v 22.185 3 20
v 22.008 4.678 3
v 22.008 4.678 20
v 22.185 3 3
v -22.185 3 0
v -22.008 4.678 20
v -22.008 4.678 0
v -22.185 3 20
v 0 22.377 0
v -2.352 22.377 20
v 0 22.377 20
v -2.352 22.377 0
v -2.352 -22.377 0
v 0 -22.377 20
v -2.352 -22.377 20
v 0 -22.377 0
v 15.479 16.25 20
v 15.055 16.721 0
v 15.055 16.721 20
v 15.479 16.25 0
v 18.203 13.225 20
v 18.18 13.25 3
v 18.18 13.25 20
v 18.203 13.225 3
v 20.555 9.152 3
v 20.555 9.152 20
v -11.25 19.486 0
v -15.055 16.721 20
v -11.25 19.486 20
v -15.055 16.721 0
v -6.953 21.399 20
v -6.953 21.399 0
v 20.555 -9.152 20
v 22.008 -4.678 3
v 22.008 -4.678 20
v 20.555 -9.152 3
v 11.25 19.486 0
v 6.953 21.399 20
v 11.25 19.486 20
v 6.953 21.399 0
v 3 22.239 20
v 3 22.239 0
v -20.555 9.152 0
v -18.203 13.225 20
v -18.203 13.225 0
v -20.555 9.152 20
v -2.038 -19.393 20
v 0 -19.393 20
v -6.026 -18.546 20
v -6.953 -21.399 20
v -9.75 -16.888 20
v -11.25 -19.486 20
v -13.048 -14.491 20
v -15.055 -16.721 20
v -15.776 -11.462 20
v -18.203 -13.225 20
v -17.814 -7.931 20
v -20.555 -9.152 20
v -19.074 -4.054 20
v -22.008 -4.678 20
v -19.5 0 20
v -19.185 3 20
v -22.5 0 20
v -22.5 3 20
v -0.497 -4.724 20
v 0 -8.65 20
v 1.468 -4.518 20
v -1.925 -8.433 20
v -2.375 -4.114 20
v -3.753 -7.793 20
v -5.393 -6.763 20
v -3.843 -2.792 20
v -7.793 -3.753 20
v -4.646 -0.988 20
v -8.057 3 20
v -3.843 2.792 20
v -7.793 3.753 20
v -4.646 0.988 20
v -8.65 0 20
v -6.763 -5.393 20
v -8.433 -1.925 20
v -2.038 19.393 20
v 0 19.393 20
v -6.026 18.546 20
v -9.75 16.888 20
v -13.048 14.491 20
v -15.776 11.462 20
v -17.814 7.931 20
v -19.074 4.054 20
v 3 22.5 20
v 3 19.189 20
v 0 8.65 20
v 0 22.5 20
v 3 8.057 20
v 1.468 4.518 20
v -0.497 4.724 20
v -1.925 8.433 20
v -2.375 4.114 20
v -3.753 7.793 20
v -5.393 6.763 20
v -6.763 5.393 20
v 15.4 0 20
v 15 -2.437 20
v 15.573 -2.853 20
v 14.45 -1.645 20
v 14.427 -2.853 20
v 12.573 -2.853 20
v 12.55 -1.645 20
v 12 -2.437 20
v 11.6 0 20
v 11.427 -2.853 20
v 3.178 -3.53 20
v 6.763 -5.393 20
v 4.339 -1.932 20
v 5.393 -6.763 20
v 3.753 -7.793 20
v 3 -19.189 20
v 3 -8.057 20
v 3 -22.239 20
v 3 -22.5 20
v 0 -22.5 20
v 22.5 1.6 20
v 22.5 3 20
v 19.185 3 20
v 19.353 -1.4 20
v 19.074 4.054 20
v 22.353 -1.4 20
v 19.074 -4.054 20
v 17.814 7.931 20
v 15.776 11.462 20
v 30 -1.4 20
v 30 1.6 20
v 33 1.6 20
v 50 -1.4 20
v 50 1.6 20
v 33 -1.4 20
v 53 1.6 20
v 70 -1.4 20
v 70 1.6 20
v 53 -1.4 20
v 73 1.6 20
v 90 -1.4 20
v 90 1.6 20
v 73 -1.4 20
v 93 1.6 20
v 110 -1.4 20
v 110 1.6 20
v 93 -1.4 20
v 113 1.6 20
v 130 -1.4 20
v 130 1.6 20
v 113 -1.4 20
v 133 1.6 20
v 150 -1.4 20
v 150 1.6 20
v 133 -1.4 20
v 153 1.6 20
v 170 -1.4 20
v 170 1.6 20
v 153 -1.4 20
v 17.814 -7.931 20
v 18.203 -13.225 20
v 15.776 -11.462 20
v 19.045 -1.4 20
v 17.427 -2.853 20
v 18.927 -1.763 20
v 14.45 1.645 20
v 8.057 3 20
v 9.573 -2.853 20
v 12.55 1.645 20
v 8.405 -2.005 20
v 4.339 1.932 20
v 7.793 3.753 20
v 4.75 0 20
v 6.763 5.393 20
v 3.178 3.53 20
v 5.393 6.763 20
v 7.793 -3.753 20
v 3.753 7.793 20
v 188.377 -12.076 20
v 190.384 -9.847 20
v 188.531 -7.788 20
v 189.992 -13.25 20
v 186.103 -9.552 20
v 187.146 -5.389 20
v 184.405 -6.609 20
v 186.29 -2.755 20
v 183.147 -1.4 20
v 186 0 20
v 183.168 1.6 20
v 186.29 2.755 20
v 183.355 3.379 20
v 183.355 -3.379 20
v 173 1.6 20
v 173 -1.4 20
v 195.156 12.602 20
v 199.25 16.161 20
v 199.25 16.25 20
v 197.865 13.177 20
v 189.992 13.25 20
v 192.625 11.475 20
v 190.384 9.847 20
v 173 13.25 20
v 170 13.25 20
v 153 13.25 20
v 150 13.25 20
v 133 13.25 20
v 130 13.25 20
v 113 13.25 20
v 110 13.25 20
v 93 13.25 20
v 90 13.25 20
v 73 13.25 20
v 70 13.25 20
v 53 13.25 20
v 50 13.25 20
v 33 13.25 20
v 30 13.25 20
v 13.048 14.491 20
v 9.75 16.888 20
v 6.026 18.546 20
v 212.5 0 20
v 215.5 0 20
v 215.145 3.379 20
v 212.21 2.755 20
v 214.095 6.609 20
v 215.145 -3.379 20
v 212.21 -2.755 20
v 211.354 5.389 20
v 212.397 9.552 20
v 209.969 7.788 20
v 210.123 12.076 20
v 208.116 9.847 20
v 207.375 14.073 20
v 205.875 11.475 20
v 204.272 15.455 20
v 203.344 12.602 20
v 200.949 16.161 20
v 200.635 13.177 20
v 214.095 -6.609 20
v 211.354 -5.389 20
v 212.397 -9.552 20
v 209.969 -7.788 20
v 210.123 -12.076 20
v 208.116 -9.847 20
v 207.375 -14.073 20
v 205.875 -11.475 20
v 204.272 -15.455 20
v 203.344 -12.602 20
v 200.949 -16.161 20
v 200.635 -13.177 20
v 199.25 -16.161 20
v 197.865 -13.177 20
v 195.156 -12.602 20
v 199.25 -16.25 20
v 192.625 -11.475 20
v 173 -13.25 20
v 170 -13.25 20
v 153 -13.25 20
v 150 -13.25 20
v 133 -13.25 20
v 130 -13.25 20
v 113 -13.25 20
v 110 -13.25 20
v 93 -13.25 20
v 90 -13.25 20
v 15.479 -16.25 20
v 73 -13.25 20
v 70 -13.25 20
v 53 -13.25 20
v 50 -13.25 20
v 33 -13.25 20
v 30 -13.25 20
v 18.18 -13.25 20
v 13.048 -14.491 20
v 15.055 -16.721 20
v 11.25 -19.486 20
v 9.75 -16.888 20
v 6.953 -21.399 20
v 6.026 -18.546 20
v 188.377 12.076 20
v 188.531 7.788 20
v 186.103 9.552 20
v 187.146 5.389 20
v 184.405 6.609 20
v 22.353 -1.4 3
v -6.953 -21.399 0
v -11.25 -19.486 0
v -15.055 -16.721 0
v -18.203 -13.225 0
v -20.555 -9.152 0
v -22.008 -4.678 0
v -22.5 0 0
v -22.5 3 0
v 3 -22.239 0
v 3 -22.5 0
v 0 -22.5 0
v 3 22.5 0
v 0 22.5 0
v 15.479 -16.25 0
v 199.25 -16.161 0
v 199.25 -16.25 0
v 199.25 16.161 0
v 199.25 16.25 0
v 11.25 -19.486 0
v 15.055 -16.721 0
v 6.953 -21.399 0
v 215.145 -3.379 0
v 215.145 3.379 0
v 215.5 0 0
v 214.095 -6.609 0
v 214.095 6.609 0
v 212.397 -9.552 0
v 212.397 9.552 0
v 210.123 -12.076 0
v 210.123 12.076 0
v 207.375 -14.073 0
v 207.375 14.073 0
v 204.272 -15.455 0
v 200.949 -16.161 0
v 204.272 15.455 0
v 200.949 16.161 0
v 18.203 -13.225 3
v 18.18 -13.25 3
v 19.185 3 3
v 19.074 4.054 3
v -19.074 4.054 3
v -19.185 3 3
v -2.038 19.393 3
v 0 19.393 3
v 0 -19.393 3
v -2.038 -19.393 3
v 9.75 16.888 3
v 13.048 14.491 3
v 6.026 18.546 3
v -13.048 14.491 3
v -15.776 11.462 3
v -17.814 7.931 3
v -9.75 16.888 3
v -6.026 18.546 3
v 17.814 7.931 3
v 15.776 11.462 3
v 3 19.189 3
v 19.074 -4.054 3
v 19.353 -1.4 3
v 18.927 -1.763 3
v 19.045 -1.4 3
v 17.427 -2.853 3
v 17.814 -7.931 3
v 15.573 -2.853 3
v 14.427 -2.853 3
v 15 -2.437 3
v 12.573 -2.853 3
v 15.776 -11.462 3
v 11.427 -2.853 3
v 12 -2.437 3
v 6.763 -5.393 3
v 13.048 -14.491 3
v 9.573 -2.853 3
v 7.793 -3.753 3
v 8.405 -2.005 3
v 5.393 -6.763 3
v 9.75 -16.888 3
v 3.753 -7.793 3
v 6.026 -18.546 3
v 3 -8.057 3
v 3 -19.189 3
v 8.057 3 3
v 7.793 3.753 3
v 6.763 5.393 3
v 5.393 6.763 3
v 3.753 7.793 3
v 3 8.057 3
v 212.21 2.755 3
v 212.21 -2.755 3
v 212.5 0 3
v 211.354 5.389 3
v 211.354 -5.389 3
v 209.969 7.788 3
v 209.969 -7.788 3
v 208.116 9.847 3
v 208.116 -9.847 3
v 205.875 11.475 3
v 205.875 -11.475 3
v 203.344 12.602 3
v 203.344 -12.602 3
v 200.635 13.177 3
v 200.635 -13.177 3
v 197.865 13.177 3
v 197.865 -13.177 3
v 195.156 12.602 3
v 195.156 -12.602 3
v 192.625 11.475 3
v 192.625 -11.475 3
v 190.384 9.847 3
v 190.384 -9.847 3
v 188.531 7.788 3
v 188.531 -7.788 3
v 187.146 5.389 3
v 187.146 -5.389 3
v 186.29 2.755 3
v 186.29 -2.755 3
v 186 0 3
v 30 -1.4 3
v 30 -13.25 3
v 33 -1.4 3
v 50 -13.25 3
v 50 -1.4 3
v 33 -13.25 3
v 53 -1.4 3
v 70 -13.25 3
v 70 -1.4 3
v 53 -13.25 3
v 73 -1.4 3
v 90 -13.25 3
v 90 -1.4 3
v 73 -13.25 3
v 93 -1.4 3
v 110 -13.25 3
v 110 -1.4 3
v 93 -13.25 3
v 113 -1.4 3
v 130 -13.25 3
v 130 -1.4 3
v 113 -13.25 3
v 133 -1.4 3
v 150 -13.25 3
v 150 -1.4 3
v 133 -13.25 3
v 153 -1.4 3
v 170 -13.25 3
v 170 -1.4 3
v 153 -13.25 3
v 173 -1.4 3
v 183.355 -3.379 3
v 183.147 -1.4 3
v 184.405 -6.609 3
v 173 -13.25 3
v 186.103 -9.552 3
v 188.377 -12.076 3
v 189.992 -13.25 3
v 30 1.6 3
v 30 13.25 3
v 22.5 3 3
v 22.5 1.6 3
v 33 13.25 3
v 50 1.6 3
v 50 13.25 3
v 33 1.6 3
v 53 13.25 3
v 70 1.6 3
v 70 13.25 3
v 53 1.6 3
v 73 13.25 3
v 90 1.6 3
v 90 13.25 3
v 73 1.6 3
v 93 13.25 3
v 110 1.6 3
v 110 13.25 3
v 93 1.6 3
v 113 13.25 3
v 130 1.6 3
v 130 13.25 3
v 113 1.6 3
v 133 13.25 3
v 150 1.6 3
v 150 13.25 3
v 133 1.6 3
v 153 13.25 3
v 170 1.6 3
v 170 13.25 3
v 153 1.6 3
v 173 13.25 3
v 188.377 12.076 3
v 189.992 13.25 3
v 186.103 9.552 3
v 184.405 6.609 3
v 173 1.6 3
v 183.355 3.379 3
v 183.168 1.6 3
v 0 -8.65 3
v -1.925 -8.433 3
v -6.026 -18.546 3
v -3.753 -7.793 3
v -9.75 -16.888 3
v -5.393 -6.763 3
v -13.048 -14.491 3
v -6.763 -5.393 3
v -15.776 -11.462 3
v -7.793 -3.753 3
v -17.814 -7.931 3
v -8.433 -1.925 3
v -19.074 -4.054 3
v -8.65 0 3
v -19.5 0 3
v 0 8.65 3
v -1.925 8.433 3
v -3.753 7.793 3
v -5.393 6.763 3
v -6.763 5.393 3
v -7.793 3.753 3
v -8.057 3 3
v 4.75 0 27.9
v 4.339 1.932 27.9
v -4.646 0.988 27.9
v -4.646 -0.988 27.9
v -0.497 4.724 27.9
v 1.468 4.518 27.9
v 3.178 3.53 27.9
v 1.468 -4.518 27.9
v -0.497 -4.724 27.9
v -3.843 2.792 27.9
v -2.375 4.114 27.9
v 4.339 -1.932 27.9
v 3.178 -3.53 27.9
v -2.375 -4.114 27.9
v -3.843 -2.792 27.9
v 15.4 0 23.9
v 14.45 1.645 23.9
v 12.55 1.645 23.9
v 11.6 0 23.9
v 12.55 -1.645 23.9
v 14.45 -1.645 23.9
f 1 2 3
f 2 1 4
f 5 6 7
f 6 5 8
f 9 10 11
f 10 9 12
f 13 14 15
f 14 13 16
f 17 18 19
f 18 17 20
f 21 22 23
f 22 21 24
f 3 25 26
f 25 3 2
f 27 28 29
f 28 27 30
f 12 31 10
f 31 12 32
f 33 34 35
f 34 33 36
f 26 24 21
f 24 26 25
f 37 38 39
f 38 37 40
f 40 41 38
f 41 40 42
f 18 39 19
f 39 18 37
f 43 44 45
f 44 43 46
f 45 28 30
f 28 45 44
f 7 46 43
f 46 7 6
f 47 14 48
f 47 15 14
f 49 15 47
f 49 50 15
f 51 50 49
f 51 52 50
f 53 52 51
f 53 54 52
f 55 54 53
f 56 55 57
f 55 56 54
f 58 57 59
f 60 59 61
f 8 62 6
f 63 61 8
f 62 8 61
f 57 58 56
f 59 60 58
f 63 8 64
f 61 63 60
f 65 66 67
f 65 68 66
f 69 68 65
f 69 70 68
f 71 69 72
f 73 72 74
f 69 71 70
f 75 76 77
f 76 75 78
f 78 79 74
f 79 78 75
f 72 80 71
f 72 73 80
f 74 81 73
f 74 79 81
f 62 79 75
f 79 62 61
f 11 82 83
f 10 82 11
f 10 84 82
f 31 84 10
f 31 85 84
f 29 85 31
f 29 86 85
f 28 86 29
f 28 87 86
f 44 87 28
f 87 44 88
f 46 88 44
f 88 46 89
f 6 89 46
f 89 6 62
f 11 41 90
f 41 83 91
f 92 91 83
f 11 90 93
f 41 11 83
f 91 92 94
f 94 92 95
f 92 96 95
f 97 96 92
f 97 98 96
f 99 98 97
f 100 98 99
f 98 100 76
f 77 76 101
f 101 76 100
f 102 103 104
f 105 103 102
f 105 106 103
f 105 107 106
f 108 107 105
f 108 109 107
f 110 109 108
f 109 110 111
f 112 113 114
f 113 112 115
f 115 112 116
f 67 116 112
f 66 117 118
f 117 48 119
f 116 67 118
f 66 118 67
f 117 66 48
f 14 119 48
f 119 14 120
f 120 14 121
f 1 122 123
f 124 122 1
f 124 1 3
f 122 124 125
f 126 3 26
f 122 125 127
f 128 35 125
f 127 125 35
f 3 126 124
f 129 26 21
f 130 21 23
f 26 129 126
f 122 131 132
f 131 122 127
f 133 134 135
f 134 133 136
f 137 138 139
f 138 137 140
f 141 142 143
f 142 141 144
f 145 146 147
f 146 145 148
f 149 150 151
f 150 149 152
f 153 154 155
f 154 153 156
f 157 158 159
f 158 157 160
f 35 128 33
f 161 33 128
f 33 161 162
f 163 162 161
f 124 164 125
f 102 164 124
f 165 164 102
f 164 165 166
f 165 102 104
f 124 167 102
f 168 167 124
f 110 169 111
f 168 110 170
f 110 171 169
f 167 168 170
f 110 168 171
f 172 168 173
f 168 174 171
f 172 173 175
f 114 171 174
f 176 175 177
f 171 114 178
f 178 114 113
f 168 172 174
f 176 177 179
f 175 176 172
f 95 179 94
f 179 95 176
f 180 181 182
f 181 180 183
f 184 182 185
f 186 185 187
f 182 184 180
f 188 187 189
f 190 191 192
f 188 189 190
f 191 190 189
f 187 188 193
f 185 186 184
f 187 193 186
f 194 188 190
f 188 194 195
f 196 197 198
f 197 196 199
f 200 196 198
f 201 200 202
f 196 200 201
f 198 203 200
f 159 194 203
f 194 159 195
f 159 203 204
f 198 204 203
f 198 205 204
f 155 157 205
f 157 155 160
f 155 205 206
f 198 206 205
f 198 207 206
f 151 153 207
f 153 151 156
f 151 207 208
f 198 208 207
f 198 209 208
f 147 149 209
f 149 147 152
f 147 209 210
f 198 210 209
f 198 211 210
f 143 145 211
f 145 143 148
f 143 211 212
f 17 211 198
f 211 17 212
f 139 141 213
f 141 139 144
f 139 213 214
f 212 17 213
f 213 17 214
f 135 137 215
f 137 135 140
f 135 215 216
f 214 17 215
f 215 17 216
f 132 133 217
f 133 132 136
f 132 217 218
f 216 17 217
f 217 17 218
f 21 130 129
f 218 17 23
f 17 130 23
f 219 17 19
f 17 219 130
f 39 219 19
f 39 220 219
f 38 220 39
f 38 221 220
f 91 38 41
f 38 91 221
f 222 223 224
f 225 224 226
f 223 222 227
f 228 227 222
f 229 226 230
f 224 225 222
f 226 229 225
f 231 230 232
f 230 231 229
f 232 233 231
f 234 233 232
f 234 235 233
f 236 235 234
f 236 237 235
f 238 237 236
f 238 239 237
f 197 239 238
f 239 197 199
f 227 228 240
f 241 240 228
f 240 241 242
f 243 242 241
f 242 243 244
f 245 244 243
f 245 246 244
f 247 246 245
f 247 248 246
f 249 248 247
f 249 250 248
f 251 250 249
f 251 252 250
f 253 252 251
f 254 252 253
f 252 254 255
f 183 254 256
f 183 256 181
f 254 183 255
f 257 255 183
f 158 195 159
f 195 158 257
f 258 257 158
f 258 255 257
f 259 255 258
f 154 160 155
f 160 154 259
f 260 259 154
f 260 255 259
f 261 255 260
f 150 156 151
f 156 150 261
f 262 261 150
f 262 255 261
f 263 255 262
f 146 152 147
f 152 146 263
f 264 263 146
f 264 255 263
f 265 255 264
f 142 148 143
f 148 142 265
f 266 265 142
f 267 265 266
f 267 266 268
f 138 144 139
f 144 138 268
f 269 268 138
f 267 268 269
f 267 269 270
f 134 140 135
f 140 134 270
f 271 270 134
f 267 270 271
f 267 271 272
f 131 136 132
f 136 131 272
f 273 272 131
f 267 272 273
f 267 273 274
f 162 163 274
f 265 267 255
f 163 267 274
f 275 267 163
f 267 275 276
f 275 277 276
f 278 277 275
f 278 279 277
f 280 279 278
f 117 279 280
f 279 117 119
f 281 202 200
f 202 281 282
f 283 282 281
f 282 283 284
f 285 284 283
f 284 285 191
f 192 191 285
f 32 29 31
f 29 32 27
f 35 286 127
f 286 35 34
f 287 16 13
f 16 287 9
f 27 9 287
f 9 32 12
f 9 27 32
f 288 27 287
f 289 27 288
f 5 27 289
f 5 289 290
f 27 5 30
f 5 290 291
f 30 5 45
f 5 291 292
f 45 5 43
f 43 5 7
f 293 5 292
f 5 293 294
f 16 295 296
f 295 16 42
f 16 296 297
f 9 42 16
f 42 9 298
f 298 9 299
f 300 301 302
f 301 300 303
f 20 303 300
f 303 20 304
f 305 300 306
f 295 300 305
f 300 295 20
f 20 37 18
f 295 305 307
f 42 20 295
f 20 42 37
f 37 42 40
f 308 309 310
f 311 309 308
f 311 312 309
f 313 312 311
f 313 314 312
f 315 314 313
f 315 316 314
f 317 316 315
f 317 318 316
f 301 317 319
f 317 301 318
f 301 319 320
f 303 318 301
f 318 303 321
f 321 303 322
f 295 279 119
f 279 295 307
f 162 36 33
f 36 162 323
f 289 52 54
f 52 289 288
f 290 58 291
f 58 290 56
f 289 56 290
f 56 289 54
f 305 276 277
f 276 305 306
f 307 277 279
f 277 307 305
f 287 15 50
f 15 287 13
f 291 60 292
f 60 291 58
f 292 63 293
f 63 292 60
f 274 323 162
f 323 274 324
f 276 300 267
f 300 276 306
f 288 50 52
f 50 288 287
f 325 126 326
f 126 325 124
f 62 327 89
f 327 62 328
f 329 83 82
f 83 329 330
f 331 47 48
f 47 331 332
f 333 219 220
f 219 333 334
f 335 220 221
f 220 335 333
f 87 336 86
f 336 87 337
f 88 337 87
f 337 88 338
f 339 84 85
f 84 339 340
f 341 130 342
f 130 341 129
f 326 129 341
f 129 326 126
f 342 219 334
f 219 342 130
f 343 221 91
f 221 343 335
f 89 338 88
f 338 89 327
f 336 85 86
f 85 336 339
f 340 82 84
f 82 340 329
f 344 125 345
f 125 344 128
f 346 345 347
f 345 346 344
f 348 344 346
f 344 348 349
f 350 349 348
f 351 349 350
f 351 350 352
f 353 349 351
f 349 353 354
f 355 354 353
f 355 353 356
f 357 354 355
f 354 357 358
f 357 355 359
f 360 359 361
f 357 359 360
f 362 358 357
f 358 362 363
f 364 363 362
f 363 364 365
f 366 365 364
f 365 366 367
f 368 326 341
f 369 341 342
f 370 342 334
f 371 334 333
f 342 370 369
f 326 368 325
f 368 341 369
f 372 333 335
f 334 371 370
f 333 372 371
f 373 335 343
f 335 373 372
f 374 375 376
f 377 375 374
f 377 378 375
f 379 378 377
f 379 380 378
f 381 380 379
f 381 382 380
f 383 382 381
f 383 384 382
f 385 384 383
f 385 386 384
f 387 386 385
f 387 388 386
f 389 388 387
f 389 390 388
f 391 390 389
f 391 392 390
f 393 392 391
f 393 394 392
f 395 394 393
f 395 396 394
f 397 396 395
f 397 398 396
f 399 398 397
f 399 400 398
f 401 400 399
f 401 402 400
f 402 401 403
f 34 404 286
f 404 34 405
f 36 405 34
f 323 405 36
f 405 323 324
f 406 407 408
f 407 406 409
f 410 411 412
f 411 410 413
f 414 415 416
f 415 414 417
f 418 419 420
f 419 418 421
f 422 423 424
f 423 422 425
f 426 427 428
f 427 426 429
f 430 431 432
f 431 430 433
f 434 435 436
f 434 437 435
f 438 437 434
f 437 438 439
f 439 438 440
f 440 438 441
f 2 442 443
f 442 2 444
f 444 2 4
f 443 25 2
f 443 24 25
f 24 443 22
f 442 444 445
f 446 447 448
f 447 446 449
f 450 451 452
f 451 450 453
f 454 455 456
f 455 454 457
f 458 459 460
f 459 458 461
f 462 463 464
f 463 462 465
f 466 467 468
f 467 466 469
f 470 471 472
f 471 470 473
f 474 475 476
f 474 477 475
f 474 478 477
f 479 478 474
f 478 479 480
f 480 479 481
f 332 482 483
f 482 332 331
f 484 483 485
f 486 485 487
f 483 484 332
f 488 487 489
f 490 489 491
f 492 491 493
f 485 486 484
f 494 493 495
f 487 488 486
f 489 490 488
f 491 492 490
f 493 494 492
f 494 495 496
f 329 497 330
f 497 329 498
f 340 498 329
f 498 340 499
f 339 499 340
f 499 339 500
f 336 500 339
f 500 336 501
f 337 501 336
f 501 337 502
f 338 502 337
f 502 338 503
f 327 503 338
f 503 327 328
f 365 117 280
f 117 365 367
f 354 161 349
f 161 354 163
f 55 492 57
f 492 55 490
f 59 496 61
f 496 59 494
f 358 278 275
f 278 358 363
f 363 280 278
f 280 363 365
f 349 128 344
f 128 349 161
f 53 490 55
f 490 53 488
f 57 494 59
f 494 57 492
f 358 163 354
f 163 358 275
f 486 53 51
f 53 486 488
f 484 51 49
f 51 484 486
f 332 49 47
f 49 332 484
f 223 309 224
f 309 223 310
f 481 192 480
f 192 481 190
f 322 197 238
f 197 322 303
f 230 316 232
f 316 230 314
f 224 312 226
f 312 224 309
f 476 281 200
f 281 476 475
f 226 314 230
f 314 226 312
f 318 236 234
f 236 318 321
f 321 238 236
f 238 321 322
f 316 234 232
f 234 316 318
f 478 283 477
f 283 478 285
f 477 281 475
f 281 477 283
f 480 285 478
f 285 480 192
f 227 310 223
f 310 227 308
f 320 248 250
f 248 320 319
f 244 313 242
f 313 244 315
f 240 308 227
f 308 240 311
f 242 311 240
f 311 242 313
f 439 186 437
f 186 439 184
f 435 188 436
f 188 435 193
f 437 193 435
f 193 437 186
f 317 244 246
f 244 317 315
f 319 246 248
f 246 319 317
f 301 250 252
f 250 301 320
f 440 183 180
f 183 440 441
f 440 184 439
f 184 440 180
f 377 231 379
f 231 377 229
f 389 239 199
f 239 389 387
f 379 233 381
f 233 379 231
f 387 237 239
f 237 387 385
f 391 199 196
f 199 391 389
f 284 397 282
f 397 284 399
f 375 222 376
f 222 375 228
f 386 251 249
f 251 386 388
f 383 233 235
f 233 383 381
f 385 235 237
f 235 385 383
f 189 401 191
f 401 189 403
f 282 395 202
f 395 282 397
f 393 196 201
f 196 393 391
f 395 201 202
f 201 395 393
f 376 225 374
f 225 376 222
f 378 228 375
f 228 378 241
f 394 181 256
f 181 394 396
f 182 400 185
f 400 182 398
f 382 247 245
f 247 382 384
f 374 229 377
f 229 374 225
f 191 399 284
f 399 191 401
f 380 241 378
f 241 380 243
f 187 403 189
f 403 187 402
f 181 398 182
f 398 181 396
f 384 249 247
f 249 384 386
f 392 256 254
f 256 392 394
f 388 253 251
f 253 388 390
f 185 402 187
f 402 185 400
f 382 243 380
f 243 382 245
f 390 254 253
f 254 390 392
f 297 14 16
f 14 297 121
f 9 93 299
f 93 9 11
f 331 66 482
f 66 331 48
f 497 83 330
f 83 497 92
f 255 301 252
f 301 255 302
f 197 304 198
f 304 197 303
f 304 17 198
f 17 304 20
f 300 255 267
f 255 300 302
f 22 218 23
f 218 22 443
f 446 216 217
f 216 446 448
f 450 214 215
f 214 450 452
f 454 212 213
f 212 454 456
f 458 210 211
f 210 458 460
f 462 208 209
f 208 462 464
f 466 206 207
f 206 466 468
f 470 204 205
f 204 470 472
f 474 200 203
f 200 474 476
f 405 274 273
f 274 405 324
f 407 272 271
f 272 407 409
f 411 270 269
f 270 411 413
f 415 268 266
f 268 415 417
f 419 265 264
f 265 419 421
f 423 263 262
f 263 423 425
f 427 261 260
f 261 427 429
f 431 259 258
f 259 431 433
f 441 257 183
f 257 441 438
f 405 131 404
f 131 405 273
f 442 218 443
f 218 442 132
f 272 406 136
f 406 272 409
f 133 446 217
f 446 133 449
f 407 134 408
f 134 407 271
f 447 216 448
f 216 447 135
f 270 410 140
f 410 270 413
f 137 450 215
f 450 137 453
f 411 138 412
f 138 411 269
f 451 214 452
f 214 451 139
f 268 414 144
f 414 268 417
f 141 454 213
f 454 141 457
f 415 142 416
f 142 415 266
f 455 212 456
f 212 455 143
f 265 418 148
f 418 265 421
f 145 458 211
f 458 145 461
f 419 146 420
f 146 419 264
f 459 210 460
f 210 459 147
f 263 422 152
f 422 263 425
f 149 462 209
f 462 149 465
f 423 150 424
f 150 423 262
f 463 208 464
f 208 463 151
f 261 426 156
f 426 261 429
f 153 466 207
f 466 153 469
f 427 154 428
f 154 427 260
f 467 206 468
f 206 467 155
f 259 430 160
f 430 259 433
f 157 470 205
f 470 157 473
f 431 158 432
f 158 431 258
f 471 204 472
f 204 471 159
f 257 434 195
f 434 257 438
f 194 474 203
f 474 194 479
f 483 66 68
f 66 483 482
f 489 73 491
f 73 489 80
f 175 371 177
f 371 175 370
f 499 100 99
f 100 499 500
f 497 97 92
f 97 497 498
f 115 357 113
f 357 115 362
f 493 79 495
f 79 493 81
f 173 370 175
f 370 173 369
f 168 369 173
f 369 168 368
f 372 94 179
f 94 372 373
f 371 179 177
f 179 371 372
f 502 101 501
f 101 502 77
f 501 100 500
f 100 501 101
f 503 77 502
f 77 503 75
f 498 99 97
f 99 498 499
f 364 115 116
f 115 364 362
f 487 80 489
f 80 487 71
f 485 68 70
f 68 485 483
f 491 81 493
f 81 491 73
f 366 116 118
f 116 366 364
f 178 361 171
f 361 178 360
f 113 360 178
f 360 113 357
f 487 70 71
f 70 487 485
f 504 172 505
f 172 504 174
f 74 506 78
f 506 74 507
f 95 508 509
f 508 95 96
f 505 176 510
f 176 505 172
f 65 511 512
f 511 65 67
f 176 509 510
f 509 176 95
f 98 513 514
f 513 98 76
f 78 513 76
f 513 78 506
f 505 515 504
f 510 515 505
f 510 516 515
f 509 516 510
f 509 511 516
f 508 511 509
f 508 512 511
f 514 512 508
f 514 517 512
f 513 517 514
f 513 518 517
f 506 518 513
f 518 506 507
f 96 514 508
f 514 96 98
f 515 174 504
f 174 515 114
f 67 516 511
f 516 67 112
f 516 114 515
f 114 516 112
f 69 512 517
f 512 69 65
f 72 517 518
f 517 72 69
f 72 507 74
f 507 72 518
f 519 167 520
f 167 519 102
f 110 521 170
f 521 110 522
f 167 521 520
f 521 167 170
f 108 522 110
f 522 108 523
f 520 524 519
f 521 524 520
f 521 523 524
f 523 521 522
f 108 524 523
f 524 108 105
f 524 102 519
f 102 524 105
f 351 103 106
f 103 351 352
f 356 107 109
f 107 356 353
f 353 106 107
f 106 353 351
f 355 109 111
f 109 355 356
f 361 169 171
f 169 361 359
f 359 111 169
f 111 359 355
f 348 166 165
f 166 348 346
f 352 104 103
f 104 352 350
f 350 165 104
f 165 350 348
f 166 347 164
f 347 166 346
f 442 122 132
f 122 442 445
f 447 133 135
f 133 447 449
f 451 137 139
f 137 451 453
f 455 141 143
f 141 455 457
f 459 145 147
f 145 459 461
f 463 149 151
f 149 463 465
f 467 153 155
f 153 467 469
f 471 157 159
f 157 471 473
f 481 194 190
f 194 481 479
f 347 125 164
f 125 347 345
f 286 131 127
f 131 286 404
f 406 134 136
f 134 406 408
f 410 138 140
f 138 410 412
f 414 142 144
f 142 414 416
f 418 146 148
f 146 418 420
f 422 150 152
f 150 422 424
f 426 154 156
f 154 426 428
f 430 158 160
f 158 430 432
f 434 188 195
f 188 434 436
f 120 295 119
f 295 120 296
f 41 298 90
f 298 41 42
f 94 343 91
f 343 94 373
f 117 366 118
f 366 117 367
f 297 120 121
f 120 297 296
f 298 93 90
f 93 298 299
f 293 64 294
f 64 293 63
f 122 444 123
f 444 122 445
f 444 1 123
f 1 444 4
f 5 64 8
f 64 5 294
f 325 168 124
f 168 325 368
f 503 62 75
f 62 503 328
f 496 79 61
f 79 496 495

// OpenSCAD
// (mm)
length = 238;

// (mm)
width = 20; // [20:100]

// of the top hexagonal surface
thickness = 3;   // [2:7]


bigcirclediameter = 45;
smallcircleinnterdiameter = 20.5;
smallcirclediameter=20.5+thickness*4;
height = smallcirclediameter;

centercirclediameter = 9.5;
smalldotdiameter = 3.8;
distance = 13.5;

difference() {
    cylinder(d=bigcirclediameter, h=width);
    translate([0, 0, thickness])
    cylinder(d=bigcirclediameter-2*thickness, h=width-thickness);
}

cylinder(d=distance+smalldotdiameter, h=width);


translate([0, 0, width-0.1])
cylinder(d=centercirclediameter, h=8);

translate([distance, 0, width-0.1])
cylinder(d=smalldotdiameter, h=4);

translate([distance, 0, 0])
cylinder(d=6, h=width);

translate([distance-3, 0, 0])
cylinder(d=6, h=width);
translate([distance+3, 0, 0])
cylinder(d=6, h=width);


translate([0,-thickness/2+0.1, 0])
cube([length-smallcirclediameter-bigcirclediameter/2+thickness, thickness, width]);

for ( i = [0 : 7] ){
        translate([30+i*20,-height/2, 0])
        cube([thickness, height, width]);
    }

translate([length-smallcirclediameter/2-bigcirclediameter/2, 0, 0])
{
    difference() {
        cylinder(d=smallcirclediameter, h=width);
        translate([0, 0, thickness])
        cylinder(d=smallcirclediameter-2*thickness, h=width);
    }
}


difference() {
    translate([0,-height/2, 0])
    cube([length-smallcirclediameter/2-bigcirclediameter/2, height, width]);

    translate([0,-height/2+thickness, thickness])
    cube([length-smallcirclediameter/2-bigcirclediameter/2, height-2*thickness, width]);

    translate([0, 0, thickness])
    cylinder(d=bigcirclediameter-2*thickness, h=width-thickness);
    
}

translate([0,-bigcirclediameter/2, 0])
cube([thickness, bigcirclediameter, width]);

translate([-bigcirclediameter/2, 0, 0])
cube([bigcirclediameter, thickness, width]);
